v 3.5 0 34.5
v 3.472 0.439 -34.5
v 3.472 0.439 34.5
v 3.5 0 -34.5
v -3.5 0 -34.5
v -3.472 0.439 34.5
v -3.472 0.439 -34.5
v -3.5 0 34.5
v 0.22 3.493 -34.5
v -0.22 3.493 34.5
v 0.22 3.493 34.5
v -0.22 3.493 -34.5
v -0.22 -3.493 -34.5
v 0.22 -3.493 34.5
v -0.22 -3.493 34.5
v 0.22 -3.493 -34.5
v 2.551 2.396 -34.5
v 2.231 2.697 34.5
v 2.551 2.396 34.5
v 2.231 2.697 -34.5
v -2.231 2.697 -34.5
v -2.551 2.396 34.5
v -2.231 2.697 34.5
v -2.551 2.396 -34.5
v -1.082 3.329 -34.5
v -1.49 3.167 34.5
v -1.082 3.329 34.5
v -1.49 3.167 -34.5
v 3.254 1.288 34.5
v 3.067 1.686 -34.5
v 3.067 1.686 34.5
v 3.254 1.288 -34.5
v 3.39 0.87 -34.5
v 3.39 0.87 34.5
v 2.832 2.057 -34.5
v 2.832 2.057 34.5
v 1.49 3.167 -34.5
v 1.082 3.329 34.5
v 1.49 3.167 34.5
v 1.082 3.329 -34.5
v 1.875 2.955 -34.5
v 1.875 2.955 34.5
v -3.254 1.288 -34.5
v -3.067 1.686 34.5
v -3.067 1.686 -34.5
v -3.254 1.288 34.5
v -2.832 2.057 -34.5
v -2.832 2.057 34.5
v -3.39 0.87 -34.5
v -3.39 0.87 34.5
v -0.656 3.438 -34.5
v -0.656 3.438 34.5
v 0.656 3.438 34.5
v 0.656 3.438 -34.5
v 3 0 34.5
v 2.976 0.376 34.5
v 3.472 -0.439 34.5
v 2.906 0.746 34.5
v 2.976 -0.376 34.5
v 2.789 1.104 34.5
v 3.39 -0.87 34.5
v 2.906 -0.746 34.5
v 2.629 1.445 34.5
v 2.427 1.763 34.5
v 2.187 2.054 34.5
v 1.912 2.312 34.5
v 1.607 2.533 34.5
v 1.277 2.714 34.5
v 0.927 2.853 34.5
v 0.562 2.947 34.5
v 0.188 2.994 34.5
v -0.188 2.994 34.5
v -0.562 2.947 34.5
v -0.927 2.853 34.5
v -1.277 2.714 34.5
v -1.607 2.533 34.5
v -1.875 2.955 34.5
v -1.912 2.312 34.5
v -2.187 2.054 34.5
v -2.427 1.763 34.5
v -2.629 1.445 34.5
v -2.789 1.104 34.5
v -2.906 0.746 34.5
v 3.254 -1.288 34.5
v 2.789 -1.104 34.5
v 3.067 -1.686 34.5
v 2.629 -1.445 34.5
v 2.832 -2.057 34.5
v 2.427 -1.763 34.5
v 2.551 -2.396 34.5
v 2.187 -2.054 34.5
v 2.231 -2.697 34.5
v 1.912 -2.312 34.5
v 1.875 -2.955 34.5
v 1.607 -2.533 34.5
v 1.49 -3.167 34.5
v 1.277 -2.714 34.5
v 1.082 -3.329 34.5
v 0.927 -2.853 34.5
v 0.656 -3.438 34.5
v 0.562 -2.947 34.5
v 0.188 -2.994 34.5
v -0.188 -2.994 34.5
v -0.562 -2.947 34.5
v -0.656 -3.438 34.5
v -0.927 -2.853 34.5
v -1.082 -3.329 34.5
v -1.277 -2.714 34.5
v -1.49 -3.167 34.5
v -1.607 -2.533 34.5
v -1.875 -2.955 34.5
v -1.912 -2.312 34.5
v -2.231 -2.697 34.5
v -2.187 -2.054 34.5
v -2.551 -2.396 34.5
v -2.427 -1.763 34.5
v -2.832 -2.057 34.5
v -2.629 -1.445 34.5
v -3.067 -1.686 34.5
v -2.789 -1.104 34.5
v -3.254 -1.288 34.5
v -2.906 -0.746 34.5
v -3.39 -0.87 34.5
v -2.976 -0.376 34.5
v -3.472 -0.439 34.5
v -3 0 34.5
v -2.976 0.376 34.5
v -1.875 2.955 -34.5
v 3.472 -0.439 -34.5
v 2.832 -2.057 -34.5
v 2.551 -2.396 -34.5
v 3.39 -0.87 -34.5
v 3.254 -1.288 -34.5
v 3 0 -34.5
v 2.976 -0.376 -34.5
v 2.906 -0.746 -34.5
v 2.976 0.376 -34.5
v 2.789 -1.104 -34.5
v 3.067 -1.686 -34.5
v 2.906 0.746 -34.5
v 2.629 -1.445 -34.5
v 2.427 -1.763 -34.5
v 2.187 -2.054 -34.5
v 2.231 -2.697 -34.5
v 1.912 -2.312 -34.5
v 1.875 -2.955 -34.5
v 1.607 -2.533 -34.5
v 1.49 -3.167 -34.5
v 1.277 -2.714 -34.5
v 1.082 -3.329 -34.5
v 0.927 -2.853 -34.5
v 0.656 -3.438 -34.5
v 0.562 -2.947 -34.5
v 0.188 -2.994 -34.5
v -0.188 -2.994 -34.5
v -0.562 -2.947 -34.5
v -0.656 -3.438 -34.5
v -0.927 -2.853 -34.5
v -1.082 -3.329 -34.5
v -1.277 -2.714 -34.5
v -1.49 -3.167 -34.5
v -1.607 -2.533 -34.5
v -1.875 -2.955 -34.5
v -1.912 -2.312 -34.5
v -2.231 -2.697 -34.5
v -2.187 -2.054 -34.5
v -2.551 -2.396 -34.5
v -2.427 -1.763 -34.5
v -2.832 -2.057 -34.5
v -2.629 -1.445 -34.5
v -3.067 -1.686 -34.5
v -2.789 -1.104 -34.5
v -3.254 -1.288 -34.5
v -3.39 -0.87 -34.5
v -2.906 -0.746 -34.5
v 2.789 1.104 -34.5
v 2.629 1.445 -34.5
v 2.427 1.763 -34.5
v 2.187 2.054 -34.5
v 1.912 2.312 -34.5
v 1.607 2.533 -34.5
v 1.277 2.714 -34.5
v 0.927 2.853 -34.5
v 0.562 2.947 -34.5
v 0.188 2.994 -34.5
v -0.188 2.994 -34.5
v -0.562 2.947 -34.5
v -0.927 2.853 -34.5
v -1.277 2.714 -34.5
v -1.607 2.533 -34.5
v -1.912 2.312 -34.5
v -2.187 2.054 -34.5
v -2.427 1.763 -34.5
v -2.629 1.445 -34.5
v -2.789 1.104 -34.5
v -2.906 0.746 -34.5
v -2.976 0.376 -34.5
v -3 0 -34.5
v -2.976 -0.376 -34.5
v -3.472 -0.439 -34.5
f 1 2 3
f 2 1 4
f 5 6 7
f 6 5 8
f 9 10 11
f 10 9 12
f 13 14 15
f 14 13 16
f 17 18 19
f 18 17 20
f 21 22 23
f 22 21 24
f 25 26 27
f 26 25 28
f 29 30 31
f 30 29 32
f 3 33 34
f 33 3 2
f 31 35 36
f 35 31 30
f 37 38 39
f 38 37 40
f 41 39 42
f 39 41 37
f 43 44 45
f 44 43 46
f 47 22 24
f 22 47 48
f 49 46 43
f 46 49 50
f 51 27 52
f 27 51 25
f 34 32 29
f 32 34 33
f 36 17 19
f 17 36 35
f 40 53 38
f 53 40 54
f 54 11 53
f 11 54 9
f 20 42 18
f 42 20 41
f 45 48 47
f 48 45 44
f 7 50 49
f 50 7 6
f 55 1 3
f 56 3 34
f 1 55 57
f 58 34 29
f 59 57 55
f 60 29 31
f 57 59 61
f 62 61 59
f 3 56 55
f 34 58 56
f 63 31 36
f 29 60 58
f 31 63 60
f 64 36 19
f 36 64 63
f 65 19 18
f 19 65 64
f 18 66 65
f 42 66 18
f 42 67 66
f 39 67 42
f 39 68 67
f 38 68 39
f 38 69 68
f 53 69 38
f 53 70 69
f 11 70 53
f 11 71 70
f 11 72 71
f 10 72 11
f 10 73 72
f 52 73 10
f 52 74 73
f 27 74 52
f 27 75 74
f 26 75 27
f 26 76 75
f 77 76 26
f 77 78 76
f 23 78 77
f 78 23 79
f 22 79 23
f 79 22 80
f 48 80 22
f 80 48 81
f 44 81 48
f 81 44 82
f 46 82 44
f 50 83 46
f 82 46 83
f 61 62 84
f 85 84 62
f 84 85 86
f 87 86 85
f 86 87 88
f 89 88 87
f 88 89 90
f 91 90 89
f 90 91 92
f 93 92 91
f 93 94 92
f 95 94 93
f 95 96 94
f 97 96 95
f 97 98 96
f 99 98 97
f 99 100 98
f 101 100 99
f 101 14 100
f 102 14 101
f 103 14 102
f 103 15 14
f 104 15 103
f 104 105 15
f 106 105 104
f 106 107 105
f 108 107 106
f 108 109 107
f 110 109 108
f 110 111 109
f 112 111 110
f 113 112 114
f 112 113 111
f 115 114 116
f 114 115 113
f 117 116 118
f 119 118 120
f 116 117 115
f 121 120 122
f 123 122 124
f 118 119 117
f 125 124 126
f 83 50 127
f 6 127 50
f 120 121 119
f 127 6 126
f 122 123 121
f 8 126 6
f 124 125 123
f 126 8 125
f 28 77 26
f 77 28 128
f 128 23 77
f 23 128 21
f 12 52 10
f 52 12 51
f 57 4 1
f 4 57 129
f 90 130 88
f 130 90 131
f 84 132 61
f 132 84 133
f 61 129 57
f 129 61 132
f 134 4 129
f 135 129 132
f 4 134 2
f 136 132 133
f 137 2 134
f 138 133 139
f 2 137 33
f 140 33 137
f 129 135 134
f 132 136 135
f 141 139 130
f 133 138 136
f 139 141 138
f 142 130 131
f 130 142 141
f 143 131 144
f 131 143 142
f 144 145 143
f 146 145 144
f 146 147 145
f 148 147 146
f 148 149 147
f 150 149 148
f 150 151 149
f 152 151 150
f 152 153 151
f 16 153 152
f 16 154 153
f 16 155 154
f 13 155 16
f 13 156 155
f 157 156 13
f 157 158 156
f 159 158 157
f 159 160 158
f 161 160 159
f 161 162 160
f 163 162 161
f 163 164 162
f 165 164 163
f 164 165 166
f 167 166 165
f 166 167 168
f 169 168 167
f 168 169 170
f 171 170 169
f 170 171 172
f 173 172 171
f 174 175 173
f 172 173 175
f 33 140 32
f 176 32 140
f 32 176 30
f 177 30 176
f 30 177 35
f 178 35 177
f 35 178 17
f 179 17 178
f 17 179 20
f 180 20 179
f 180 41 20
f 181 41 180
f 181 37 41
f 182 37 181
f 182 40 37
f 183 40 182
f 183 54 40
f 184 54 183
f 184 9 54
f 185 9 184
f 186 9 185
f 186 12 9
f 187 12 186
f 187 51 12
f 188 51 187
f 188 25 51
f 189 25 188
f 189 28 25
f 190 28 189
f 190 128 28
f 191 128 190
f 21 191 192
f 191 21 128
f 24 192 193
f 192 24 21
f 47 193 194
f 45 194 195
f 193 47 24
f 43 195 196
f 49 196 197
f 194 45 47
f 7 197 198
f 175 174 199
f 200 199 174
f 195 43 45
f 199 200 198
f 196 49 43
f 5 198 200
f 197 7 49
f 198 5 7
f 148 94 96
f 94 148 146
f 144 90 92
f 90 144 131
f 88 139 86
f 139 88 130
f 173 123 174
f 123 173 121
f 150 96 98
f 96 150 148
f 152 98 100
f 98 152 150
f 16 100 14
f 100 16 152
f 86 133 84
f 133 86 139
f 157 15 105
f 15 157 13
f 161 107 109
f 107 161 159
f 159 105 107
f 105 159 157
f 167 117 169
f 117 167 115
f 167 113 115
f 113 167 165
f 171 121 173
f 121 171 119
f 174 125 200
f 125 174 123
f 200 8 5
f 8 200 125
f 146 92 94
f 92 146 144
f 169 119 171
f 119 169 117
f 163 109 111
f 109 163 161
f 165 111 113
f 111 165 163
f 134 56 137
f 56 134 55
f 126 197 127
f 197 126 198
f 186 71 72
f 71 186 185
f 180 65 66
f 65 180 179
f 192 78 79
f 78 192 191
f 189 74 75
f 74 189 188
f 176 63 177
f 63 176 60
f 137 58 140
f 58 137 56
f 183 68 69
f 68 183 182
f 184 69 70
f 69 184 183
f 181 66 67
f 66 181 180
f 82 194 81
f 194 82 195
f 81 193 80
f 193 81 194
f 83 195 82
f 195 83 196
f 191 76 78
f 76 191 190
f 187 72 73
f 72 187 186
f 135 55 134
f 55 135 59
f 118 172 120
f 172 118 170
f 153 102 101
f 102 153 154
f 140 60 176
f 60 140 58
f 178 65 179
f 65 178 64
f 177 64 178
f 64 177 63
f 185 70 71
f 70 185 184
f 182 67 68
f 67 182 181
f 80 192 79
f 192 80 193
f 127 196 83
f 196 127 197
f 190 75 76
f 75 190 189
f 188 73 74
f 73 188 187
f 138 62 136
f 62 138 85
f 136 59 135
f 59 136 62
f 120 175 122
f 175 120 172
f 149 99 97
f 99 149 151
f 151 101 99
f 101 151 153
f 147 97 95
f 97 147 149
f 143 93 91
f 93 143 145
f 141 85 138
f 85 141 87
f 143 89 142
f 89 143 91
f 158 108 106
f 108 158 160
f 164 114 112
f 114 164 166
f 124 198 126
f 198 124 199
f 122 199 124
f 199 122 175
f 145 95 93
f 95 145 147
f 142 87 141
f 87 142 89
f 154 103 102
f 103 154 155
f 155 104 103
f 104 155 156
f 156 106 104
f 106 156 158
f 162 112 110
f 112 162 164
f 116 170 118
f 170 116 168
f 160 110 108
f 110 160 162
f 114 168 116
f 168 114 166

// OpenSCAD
$fn = 50;


difference() {
	union() {
		translate(v = [0, 0, -34.5000000000]) {
			cylinder(h = 69, r = 3.5000000000);
		}
	}
	union() {
		translate(v = [0, 0, -100.0000000000]) {
			cylinder(h = 200, r = 3);
		}
	}
}
